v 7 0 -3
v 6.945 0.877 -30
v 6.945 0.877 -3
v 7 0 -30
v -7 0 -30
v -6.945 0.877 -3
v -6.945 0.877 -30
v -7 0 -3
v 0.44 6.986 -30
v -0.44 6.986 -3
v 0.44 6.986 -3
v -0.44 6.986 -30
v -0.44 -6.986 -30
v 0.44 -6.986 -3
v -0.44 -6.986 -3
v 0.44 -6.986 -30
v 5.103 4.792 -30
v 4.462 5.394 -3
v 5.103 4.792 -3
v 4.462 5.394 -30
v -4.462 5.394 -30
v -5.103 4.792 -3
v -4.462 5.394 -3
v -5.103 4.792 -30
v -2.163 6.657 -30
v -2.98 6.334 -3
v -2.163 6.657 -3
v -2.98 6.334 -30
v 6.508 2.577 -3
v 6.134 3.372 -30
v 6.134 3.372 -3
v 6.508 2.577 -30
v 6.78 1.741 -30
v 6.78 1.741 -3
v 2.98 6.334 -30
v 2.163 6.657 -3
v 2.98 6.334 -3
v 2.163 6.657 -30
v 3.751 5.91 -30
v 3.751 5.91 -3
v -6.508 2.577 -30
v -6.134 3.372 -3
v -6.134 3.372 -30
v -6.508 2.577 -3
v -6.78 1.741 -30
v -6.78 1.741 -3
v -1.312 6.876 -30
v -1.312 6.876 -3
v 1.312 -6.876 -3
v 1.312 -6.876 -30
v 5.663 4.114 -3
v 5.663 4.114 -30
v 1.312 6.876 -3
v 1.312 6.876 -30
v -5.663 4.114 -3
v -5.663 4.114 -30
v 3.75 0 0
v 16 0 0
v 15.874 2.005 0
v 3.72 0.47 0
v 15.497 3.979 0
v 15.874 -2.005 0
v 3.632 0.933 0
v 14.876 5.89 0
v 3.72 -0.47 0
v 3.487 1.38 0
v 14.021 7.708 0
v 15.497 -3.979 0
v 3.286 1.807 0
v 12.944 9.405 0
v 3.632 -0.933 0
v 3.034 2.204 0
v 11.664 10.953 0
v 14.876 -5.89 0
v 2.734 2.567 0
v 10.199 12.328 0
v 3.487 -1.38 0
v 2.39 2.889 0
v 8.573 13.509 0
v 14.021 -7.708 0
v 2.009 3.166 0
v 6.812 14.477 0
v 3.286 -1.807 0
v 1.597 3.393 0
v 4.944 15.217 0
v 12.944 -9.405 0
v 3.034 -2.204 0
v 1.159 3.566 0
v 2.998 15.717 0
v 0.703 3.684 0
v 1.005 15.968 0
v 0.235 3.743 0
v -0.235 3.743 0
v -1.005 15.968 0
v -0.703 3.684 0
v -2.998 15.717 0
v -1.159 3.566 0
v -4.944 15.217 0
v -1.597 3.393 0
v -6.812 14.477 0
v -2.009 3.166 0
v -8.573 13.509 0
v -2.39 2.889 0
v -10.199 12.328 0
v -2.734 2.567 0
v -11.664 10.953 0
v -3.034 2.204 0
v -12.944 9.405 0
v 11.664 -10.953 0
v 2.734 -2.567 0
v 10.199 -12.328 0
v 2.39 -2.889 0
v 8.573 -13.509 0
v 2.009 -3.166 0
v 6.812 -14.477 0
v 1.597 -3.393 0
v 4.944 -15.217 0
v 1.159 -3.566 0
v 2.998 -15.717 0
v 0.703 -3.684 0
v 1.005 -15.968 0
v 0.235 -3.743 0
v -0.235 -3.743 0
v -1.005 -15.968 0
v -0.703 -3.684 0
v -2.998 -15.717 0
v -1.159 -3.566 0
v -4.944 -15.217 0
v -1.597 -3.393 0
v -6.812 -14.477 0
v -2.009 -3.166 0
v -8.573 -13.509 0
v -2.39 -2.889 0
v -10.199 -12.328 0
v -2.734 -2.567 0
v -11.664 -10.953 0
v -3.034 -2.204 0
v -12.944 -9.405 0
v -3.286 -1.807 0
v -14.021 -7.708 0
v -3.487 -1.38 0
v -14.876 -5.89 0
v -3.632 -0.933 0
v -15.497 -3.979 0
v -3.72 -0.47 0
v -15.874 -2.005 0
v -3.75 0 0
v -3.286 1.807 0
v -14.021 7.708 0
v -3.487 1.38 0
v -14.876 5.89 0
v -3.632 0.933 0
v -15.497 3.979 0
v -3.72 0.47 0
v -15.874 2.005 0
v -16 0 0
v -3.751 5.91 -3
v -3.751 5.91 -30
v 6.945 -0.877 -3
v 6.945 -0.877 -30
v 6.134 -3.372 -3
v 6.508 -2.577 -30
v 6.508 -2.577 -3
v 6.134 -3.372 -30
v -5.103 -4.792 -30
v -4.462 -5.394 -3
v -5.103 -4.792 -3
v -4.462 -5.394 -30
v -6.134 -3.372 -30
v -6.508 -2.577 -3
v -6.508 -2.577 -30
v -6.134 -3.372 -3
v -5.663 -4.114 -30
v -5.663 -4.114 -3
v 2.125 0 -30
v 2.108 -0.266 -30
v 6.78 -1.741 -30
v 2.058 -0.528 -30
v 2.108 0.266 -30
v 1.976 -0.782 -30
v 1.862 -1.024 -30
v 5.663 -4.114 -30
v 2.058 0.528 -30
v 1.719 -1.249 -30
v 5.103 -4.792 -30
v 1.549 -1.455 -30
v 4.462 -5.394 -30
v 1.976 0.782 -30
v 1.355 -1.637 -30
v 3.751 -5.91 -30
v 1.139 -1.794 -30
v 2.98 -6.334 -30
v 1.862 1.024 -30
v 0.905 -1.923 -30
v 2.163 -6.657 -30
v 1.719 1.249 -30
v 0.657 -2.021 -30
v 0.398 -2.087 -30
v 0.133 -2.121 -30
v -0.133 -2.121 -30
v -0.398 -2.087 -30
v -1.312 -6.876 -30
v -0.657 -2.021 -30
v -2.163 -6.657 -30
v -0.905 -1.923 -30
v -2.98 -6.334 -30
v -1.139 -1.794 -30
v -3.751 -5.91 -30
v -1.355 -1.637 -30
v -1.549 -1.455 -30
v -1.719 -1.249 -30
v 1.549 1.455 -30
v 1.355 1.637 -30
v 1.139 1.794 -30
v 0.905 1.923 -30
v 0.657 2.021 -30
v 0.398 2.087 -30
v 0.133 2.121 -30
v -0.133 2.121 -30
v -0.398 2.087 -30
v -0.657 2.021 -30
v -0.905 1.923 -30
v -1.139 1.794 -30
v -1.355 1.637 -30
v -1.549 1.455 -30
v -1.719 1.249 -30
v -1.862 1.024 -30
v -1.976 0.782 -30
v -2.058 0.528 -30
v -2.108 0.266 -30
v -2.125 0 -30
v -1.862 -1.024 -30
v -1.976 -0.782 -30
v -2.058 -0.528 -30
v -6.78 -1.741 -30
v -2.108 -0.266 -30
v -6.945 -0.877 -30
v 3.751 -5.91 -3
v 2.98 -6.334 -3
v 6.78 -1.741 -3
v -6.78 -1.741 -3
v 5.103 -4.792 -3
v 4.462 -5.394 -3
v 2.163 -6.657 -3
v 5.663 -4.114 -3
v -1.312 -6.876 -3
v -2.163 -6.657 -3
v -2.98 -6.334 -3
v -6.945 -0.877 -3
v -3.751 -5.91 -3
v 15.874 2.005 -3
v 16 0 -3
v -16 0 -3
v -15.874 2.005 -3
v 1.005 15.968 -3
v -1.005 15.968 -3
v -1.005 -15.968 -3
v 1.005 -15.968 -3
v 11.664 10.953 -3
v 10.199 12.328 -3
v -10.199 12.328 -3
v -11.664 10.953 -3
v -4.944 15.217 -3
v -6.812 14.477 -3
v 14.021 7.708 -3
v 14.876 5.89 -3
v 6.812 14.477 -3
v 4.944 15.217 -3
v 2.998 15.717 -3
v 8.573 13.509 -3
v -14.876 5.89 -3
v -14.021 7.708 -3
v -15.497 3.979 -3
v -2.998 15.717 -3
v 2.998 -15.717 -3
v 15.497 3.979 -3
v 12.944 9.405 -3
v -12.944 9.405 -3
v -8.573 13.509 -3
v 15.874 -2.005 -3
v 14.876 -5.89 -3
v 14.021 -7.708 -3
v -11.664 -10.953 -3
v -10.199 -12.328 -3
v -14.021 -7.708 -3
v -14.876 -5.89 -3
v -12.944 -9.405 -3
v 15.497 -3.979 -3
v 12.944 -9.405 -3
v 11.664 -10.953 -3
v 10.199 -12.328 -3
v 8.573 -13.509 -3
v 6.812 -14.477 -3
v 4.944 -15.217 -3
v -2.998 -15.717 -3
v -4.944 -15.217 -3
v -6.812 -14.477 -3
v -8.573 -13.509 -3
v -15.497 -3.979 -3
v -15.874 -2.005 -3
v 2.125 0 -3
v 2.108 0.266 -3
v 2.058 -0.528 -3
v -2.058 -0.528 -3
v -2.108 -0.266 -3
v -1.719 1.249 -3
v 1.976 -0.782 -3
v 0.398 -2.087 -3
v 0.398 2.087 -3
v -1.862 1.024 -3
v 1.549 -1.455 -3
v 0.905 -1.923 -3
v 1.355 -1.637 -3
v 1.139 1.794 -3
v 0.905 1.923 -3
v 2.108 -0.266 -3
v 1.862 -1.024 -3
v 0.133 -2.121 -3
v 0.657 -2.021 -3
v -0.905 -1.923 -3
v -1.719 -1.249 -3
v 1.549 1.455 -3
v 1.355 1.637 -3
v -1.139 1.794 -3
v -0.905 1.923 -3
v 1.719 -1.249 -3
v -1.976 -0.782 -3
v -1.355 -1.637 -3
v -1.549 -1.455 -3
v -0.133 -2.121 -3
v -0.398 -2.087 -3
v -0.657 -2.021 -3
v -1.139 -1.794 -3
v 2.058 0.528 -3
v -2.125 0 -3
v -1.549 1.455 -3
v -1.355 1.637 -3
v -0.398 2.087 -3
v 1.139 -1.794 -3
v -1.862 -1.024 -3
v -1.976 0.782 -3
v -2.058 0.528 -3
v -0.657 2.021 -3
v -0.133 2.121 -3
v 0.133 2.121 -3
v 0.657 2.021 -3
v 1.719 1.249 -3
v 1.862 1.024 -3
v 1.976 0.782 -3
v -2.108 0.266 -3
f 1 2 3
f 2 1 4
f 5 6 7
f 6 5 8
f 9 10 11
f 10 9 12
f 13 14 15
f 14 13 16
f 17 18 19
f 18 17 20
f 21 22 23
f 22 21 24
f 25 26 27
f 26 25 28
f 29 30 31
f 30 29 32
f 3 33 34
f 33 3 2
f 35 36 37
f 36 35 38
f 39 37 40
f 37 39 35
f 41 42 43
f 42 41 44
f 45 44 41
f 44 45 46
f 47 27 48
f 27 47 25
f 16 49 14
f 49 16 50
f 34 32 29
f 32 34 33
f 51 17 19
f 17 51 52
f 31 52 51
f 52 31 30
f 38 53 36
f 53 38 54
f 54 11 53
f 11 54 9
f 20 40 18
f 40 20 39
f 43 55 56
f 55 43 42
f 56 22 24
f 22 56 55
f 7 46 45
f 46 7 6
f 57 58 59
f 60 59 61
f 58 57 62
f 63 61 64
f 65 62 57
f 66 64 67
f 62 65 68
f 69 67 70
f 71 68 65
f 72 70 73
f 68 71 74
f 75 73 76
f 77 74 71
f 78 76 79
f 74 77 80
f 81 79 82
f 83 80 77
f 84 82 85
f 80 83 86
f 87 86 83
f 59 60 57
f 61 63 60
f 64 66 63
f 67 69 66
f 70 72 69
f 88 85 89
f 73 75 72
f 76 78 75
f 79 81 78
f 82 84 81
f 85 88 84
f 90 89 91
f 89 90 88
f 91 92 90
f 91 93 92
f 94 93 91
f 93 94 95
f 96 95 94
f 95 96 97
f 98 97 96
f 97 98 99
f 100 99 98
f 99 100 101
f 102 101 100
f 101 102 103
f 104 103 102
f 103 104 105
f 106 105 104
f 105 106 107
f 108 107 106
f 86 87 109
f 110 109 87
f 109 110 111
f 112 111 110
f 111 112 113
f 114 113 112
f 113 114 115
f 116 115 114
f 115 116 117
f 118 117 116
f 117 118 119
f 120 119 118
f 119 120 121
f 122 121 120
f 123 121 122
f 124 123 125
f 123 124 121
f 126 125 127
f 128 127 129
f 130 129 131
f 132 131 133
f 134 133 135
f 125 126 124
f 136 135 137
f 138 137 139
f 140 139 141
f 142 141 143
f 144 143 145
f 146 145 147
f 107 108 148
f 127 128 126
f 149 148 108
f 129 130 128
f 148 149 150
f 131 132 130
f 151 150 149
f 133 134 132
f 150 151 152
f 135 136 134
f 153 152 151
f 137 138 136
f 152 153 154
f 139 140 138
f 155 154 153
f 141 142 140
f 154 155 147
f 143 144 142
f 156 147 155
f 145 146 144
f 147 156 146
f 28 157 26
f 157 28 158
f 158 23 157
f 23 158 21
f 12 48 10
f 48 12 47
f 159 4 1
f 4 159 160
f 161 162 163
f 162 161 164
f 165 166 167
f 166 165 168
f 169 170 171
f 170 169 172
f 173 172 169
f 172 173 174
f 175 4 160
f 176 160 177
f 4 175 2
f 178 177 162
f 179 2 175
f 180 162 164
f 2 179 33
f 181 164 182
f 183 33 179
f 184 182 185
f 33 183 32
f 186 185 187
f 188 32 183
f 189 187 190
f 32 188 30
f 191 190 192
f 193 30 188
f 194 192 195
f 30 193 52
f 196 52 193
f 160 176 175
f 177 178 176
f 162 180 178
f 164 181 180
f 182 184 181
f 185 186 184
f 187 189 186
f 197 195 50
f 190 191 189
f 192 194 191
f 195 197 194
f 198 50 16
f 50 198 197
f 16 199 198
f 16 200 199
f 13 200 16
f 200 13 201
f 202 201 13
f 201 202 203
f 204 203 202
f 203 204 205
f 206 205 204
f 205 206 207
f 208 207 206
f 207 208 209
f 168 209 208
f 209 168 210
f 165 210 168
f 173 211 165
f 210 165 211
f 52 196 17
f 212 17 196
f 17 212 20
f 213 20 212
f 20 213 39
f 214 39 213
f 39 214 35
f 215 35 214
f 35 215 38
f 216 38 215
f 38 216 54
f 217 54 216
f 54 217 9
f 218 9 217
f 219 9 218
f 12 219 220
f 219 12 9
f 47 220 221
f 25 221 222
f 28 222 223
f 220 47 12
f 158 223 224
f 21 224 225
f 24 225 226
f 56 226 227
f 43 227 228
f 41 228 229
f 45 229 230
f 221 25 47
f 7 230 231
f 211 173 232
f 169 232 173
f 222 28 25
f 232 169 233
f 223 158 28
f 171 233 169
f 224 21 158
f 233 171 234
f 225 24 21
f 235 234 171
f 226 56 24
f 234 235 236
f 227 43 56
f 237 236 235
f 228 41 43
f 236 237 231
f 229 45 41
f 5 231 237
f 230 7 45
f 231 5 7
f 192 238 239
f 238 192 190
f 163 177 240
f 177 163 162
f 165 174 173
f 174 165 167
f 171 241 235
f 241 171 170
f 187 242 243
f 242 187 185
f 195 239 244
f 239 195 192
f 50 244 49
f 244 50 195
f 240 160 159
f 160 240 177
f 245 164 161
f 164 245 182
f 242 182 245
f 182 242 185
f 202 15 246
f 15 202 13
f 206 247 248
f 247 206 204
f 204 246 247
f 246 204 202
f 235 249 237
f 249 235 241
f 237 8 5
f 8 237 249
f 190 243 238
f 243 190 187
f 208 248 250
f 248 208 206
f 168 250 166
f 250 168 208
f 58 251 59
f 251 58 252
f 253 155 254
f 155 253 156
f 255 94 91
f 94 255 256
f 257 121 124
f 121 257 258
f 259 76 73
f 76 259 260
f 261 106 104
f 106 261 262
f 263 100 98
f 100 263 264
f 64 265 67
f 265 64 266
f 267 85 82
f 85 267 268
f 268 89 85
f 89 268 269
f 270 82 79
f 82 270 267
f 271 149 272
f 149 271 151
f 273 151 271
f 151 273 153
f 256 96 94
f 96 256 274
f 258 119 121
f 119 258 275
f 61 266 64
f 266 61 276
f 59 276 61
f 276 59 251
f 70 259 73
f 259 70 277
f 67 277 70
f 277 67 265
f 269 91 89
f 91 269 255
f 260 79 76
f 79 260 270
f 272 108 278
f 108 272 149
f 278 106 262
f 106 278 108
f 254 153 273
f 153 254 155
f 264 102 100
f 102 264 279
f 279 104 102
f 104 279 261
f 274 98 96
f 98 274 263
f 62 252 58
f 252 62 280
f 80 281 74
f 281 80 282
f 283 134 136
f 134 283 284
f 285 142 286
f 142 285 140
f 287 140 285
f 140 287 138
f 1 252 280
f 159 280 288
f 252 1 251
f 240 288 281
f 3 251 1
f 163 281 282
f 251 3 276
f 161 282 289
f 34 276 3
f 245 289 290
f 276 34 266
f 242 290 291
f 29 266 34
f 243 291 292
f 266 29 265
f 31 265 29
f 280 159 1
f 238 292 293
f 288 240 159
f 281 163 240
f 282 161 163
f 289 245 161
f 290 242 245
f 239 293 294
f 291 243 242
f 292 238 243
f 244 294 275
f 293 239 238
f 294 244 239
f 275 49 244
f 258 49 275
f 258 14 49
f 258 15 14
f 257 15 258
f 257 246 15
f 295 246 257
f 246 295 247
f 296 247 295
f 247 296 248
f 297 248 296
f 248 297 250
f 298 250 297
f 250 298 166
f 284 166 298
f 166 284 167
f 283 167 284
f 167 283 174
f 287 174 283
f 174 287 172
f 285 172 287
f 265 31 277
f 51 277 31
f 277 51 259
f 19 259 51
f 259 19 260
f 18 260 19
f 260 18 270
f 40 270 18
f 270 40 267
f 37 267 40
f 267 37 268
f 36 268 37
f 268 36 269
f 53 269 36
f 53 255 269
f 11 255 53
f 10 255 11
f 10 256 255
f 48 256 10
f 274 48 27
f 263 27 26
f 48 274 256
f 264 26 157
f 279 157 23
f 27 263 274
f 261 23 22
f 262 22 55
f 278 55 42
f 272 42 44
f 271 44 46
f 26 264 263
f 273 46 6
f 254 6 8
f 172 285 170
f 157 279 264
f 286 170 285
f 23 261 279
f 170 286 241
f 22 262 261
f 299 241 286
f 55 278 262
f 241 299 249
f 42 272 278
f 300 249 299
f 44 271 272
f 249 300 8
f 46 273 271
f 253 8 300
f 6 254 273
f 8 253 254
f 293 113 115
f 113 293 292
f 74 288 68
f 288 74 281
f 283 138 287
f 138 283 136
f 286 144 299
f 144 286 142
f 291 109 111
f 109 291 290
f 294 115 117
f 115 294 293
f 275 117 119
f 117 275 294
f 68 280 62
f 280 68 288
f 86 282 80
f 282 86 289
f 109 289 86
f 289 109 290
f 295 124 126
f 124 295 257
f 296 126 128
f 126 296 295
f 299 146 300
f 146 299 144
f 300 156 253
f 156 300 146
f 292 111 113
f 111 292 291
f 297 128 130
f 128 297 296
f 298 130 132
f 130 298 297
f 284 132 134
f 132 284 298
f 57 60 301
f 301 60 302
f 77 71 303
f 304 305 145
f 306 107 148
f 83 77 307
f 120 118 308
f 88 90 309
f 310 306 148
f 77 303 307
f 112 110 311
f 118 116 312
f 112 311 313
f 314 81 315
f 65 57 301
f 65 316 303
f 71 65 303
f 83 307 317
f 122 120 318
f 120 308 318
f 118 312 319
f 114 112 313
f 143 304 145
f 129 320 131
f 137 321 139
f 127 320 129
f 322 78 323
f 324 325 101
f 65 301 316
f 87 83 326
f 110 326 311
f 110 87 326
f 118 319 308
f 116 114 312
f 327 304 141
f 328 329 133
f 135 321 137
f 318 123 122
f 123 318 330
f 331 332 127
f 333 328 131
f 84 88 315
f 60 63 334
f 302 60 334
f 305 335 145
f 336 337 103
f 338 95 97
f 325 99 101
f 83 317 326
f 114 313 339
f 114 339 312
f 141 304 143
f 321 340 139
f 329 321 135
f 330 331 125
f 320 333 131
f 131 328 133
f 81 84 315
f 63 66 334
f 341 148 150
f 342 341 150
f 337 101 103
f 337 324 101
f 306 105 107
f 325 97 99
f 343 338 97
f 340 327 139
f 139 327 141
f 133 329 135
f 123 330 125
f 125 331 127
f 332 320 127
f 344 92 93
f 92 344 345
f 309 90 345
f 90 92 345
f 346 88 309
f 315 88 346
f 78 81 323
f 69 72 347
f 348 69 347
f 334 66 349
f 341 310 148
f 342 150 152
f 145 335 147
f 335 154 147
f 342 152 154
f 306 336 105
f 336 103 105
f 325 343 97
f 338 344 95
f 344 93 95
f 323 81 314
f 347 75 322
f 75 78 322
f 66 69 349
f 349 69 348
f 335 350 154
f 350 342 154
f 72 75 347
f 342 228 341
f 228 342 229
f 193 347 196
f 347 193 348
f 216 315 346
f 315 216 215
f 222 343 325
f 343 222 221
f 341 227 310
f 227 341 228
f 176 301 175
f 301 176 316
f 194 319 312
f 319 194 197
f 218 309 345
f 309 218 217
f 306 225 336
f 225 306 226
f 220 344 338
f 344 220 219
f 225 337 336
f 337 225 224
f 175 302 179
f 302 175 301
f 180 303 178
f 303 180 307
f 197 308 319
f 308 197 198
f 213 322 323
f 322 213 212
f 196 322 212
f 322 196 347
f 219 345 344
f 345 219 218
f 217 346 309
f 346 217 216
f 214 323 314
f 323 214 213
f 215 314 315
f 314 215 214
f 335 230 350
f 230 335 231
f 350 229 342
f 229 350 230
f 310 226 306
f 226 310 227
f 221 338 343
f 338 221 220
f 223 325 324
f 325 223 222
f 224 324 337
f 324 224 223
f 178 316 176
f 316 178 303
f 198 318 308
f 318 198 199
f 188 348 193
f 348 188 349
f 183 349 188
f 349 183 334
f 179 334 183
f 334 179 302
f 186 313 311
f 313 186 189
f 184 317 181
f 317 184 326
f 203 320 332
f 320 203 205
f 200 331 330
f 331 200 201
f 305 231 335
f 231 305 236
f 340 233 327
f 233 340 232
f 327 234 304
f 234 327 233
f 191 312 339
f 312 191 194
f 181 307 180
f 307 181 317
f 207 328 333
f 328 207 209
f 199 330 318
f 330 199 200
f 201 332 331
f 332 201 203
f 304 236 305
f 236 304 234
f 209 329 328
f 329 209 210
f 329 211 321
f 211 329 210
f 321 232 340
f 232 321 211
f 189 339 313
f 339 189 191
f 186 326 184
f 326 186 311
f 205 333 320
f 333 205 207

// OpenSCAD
$fn = 50;


difference() {
	union() {
		translate(v = [0, 0, -30.0000000000]) {
			cylinder(h = 30, r = 7.0000000000);
		}
		translate(v = [0, 0, -3.0000000000]) {
			cylinder(h = 3, r = 16.0000000000);
		}
	}
	union() {
		translate(v = [0, 0, 0]) {
			rotate(a = [0, 0, 0]) {
				difference() {
					union() {
						#translate(v = [0, 0, -30.0000000000]) {
							cylinder(h = 30, r = 2.0000000000);
						}
						#translate(v = [0, 0, -3]) {
							cylinder(h = 3, r1 = 2.1250000000, r2 = 3.7500000000);
						}
						#translate(v = [0, 0, -30.0000000000]) {
							cylinder(h = 30, r = 2.1250000000);
						}
						#translate(v = [0, 0, -30.0000000000]) {
							cylinder(h = 30, r = 2.0000000000);
						}
					}
					union();
				}
			}
		}
	}
}
